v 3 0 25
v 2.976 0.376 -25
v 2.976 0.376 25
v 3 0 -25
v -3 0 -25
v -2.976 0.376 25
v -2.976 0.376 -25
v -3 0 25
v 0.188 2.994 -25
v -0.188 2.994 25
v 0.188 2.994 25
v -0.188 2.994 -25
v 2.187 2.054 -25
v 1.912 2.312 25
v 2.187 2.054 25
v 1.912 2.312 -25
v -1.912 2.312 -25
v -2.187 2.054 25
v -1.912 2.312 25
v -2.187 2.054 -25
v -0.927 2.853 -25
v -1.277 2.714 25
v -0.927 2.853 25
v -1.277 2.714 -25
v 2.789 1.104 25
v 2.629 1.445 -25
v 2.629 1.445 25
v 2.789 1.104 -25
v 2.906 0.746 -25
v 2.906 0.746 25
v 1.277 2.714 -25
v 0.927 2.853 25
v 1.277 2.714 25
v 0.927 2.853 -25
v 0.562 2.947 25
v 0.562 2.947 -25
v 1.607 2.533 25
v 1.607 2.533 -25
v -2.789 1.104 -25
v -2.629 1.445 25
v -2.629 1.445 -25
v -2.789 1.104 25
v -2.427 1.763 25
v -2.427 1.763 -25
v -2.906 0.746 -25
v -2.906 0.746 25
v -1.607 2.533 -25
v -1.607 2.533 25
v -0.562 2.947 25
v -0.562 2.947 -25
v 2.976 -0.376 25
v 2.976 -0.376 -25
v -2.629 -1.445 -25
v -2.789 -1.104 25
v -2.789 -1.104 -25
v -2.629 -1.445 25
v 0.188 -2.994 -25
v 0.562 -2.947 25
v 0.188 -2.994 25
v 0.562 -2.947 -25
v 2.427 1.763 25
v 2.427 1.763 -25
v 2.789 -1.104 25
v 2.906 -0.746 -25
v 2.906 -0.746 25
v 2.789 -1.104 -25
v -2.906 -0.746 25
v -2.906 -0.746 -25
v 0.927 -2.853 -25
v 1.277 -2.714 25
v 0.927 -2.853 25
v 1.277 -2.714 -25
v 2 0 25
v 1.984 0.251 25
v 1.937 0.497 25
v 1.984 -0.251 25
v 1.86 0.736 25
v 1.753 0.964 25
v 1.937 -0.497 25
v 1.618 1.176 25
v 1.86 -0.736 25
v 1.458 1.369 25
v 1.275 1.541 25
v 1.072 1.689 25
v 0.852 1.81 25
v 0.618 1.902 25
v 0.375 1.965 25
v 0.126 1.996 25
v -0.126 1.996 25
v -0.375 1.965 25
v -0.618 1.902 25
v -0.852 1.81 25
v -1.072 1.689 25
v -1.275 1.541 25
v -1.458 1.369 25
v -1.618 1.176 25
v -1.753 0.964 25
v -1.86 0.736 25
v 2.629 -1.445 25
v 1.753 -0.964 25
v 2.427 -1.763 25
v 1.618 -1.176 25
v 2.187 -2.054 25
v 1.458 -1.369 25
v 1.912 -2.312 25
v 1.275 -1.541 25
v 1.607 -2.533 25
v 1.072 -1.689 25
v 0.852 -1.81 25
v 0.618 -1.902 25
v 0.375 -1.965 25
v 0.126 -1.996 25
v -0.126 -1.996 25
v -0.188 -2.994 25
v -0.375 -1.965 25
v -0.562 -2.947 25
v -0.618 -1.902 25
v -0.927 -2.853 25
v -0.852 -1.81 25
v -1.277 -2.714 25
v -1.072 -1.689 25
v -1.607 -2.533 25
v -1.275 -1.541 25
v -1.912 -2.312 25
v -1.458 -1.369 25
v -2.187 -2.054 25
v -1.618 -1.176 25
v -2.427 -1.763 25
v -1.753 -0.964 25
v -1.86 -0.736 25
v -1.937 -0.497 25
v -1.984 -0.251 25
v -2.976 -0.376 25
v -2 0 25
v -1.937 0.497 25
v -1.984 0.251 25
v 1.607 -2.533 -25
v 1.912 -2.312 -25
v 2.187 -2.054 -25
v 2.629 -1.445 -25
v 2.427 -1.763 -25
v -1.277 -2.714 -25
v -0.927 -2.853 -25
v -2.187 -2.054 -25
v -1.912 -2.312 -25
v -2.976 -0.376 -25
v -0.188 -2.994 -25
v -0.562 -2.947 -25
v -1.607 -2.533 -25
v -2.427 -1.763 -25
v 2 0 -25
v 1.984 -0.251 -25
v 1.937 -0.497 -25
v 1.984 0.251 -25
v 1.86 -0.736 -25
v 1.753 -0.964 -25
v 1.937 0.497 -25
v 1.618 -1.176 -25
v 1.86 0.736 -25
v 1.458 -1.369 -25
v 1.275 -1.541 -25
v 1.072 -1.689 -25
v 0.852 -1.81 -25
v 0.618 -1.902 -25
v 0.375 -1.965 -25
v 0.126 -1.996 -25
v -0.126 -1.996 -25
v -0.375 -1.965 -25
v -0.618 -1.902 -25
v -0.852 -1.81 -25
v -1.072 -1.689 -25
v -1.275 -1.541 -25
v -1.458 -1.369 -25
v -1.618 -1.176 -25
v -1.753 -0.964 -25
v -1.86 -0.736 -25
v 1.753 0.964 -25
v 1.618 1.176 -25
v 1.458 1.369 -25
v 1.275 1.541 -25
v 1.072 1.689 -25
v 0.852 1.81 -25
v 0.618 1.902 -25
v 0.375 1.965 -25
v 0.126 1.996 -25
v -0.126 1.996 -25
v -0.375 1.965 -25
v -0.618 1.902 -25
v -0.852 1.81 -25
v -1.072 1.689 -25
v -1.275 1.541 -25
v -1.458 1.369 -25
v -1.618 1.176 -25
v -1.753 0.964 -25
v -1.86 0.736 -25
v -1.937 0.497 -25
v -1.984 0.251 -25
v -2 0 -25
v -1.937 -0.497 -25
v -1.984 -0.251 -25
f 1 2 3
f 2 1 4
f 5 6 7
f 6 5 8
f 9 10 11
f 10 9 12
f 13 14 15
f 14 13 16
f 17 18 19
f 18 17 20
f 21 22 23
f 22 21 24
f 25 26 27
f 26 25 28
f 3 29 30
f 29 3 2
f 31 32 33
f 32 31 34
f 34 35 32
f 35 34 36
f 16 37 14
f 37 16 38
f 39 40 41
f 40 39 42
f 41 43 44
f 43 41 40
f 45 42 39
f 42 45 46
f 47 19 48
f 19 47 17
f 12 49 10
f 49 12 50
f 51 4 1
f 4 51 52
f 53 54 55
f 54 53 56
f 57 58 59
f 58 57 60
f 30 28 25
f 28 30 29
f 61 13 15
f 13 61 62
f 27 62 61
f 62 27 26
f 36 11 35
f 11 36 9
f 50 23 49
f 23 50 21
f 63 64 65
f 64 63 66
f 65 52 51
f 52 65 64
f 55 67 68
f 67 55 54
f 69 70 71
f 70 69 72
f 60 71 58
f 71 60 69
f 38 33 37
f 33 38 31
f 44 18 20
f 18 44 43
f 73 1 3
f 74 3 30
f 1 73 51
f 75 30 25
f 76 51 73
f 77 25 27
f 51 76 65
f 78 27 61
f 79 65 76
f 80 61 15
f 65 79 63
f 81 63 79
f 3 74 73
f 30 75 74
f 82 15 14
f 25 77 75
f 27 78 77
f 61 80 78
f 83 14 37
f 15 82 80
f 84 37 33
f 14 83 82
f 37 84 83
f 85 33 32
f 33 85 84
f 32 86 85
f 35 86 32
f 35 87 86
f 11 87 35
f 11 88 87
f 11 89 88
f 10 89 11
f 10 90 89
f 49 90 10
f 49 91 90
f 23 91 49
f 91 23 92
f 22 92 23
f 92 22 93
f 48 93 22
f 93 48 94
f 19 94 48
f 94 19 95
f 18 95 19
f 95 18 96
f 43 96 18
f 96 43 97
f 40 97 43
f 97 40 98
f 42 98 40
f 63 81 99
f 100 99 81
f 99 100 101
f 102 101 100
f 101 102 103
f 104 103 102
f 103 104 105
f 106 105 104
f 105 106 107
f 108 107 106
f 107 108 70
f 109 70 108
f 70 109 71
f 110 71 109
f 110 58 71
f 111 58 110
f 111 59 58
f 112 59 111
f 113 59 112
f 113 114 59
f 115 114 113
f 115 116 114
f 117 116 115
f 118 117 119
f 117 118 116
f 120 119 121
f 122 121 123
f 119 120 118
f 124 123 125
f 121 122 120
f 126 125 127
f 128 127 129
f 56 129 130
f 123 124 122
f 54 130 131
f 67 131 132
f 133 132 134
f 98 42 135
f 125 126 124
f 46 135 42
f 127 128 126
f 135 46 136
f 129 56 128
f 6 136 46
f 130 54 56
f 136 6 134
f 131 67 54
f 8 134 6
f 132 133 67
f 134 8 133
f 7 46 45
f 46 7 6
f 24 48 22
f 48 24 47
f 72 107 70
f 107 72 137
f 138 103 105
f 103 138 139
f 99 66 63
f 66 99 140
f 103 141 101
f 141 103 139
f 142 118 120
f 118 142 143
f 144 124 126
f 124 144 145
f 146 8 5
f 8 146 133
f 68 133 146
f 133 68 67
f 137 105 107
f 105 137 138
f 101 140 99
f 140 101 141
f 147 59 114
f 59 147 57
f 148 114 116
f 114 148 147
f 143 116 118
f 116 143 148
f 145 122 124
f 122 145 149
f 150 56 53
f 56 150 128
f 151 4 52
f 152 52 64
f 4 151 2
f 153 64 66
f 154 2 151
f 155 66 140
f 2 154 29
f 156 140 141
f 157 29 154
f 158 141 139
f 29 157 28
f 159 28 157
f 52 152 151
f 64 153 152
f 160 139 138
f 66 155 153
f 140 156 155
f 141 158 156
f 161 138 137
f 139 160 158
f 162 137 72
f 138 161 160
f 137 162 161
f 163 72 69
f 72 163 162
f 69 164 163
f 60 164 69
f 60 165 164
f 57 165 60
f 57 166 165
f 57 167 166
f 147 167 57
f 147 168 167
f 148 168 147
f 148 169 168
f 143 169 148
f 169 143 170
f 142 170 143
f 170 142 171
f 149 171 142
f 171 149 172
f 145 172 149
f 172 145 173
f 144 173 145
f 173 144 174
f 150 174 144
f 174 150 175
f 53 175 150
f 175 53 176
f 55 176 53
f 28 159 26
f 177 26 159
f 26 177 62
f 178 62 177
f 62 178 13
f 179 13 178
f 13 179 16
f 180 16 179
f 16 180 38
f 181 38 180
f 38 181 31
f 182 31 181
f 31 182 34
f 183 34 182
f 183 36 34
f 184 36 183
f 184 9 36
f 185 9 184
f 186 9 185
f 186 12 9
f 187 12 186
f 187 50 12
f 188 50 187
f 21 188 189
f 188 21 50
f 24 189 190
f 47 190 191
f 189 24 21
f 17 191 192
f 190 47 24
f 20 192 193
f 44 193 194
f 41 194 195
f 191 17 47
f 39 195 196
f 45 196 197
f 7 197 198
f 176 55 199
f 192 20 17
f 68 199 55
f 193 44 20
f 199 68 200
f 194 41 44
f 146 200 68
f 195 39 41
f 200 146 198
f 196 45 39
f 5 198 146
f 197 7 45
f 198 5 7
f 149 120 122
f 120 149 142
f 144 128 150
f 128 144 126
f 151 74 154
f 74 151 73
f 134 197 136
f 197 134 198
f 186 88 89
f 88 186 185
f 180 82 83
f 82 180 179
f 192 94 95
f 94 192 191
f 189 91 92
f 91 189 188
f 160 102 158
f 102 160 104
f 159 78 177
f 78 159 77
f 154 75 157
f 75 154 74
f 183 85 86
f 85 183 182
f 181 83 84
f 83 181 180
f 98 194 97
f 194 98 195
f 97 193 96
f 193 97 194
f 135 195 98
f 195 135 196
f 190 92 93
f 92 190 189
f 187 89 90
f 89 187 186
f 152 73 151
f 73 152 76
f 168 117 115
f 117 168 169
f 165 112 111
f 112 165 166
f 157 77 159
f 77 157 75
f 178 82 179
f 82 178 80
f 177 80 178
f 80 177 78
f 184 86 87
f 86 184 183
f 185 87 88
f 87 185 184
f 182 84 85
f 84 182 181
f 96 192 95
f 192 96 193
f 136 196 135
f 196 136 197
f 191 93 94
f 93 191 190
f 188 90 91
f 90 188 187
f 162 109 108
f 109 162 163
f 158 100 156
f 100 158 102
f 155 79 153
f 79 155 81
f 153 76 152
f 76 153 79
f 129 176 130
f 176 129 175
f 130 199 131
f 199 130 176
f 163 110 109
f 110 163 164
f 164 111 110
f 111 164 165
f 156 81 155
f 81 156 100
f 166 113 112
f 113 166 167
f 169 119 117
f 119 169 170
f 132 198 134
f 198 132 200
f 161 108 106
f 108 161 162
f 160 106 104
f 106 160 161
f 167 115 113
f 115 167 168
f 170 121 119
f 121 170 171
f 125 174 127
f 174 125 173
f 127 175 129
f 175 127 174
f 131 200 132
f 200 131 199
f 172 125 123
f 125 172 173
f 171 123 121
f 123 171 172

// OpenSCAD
$fn = 50;


difference() {
	union() {
		translate(v = [0, 0, -25.0000000000]) {
			cylinder(h = 50, r = 3.0000000000);
		}
	}
	union() {
		translate(v = [0, 0, -100.0000000000]) {
			cylinder(h = 200, r = 2.0000000000);
		}
	}
}
